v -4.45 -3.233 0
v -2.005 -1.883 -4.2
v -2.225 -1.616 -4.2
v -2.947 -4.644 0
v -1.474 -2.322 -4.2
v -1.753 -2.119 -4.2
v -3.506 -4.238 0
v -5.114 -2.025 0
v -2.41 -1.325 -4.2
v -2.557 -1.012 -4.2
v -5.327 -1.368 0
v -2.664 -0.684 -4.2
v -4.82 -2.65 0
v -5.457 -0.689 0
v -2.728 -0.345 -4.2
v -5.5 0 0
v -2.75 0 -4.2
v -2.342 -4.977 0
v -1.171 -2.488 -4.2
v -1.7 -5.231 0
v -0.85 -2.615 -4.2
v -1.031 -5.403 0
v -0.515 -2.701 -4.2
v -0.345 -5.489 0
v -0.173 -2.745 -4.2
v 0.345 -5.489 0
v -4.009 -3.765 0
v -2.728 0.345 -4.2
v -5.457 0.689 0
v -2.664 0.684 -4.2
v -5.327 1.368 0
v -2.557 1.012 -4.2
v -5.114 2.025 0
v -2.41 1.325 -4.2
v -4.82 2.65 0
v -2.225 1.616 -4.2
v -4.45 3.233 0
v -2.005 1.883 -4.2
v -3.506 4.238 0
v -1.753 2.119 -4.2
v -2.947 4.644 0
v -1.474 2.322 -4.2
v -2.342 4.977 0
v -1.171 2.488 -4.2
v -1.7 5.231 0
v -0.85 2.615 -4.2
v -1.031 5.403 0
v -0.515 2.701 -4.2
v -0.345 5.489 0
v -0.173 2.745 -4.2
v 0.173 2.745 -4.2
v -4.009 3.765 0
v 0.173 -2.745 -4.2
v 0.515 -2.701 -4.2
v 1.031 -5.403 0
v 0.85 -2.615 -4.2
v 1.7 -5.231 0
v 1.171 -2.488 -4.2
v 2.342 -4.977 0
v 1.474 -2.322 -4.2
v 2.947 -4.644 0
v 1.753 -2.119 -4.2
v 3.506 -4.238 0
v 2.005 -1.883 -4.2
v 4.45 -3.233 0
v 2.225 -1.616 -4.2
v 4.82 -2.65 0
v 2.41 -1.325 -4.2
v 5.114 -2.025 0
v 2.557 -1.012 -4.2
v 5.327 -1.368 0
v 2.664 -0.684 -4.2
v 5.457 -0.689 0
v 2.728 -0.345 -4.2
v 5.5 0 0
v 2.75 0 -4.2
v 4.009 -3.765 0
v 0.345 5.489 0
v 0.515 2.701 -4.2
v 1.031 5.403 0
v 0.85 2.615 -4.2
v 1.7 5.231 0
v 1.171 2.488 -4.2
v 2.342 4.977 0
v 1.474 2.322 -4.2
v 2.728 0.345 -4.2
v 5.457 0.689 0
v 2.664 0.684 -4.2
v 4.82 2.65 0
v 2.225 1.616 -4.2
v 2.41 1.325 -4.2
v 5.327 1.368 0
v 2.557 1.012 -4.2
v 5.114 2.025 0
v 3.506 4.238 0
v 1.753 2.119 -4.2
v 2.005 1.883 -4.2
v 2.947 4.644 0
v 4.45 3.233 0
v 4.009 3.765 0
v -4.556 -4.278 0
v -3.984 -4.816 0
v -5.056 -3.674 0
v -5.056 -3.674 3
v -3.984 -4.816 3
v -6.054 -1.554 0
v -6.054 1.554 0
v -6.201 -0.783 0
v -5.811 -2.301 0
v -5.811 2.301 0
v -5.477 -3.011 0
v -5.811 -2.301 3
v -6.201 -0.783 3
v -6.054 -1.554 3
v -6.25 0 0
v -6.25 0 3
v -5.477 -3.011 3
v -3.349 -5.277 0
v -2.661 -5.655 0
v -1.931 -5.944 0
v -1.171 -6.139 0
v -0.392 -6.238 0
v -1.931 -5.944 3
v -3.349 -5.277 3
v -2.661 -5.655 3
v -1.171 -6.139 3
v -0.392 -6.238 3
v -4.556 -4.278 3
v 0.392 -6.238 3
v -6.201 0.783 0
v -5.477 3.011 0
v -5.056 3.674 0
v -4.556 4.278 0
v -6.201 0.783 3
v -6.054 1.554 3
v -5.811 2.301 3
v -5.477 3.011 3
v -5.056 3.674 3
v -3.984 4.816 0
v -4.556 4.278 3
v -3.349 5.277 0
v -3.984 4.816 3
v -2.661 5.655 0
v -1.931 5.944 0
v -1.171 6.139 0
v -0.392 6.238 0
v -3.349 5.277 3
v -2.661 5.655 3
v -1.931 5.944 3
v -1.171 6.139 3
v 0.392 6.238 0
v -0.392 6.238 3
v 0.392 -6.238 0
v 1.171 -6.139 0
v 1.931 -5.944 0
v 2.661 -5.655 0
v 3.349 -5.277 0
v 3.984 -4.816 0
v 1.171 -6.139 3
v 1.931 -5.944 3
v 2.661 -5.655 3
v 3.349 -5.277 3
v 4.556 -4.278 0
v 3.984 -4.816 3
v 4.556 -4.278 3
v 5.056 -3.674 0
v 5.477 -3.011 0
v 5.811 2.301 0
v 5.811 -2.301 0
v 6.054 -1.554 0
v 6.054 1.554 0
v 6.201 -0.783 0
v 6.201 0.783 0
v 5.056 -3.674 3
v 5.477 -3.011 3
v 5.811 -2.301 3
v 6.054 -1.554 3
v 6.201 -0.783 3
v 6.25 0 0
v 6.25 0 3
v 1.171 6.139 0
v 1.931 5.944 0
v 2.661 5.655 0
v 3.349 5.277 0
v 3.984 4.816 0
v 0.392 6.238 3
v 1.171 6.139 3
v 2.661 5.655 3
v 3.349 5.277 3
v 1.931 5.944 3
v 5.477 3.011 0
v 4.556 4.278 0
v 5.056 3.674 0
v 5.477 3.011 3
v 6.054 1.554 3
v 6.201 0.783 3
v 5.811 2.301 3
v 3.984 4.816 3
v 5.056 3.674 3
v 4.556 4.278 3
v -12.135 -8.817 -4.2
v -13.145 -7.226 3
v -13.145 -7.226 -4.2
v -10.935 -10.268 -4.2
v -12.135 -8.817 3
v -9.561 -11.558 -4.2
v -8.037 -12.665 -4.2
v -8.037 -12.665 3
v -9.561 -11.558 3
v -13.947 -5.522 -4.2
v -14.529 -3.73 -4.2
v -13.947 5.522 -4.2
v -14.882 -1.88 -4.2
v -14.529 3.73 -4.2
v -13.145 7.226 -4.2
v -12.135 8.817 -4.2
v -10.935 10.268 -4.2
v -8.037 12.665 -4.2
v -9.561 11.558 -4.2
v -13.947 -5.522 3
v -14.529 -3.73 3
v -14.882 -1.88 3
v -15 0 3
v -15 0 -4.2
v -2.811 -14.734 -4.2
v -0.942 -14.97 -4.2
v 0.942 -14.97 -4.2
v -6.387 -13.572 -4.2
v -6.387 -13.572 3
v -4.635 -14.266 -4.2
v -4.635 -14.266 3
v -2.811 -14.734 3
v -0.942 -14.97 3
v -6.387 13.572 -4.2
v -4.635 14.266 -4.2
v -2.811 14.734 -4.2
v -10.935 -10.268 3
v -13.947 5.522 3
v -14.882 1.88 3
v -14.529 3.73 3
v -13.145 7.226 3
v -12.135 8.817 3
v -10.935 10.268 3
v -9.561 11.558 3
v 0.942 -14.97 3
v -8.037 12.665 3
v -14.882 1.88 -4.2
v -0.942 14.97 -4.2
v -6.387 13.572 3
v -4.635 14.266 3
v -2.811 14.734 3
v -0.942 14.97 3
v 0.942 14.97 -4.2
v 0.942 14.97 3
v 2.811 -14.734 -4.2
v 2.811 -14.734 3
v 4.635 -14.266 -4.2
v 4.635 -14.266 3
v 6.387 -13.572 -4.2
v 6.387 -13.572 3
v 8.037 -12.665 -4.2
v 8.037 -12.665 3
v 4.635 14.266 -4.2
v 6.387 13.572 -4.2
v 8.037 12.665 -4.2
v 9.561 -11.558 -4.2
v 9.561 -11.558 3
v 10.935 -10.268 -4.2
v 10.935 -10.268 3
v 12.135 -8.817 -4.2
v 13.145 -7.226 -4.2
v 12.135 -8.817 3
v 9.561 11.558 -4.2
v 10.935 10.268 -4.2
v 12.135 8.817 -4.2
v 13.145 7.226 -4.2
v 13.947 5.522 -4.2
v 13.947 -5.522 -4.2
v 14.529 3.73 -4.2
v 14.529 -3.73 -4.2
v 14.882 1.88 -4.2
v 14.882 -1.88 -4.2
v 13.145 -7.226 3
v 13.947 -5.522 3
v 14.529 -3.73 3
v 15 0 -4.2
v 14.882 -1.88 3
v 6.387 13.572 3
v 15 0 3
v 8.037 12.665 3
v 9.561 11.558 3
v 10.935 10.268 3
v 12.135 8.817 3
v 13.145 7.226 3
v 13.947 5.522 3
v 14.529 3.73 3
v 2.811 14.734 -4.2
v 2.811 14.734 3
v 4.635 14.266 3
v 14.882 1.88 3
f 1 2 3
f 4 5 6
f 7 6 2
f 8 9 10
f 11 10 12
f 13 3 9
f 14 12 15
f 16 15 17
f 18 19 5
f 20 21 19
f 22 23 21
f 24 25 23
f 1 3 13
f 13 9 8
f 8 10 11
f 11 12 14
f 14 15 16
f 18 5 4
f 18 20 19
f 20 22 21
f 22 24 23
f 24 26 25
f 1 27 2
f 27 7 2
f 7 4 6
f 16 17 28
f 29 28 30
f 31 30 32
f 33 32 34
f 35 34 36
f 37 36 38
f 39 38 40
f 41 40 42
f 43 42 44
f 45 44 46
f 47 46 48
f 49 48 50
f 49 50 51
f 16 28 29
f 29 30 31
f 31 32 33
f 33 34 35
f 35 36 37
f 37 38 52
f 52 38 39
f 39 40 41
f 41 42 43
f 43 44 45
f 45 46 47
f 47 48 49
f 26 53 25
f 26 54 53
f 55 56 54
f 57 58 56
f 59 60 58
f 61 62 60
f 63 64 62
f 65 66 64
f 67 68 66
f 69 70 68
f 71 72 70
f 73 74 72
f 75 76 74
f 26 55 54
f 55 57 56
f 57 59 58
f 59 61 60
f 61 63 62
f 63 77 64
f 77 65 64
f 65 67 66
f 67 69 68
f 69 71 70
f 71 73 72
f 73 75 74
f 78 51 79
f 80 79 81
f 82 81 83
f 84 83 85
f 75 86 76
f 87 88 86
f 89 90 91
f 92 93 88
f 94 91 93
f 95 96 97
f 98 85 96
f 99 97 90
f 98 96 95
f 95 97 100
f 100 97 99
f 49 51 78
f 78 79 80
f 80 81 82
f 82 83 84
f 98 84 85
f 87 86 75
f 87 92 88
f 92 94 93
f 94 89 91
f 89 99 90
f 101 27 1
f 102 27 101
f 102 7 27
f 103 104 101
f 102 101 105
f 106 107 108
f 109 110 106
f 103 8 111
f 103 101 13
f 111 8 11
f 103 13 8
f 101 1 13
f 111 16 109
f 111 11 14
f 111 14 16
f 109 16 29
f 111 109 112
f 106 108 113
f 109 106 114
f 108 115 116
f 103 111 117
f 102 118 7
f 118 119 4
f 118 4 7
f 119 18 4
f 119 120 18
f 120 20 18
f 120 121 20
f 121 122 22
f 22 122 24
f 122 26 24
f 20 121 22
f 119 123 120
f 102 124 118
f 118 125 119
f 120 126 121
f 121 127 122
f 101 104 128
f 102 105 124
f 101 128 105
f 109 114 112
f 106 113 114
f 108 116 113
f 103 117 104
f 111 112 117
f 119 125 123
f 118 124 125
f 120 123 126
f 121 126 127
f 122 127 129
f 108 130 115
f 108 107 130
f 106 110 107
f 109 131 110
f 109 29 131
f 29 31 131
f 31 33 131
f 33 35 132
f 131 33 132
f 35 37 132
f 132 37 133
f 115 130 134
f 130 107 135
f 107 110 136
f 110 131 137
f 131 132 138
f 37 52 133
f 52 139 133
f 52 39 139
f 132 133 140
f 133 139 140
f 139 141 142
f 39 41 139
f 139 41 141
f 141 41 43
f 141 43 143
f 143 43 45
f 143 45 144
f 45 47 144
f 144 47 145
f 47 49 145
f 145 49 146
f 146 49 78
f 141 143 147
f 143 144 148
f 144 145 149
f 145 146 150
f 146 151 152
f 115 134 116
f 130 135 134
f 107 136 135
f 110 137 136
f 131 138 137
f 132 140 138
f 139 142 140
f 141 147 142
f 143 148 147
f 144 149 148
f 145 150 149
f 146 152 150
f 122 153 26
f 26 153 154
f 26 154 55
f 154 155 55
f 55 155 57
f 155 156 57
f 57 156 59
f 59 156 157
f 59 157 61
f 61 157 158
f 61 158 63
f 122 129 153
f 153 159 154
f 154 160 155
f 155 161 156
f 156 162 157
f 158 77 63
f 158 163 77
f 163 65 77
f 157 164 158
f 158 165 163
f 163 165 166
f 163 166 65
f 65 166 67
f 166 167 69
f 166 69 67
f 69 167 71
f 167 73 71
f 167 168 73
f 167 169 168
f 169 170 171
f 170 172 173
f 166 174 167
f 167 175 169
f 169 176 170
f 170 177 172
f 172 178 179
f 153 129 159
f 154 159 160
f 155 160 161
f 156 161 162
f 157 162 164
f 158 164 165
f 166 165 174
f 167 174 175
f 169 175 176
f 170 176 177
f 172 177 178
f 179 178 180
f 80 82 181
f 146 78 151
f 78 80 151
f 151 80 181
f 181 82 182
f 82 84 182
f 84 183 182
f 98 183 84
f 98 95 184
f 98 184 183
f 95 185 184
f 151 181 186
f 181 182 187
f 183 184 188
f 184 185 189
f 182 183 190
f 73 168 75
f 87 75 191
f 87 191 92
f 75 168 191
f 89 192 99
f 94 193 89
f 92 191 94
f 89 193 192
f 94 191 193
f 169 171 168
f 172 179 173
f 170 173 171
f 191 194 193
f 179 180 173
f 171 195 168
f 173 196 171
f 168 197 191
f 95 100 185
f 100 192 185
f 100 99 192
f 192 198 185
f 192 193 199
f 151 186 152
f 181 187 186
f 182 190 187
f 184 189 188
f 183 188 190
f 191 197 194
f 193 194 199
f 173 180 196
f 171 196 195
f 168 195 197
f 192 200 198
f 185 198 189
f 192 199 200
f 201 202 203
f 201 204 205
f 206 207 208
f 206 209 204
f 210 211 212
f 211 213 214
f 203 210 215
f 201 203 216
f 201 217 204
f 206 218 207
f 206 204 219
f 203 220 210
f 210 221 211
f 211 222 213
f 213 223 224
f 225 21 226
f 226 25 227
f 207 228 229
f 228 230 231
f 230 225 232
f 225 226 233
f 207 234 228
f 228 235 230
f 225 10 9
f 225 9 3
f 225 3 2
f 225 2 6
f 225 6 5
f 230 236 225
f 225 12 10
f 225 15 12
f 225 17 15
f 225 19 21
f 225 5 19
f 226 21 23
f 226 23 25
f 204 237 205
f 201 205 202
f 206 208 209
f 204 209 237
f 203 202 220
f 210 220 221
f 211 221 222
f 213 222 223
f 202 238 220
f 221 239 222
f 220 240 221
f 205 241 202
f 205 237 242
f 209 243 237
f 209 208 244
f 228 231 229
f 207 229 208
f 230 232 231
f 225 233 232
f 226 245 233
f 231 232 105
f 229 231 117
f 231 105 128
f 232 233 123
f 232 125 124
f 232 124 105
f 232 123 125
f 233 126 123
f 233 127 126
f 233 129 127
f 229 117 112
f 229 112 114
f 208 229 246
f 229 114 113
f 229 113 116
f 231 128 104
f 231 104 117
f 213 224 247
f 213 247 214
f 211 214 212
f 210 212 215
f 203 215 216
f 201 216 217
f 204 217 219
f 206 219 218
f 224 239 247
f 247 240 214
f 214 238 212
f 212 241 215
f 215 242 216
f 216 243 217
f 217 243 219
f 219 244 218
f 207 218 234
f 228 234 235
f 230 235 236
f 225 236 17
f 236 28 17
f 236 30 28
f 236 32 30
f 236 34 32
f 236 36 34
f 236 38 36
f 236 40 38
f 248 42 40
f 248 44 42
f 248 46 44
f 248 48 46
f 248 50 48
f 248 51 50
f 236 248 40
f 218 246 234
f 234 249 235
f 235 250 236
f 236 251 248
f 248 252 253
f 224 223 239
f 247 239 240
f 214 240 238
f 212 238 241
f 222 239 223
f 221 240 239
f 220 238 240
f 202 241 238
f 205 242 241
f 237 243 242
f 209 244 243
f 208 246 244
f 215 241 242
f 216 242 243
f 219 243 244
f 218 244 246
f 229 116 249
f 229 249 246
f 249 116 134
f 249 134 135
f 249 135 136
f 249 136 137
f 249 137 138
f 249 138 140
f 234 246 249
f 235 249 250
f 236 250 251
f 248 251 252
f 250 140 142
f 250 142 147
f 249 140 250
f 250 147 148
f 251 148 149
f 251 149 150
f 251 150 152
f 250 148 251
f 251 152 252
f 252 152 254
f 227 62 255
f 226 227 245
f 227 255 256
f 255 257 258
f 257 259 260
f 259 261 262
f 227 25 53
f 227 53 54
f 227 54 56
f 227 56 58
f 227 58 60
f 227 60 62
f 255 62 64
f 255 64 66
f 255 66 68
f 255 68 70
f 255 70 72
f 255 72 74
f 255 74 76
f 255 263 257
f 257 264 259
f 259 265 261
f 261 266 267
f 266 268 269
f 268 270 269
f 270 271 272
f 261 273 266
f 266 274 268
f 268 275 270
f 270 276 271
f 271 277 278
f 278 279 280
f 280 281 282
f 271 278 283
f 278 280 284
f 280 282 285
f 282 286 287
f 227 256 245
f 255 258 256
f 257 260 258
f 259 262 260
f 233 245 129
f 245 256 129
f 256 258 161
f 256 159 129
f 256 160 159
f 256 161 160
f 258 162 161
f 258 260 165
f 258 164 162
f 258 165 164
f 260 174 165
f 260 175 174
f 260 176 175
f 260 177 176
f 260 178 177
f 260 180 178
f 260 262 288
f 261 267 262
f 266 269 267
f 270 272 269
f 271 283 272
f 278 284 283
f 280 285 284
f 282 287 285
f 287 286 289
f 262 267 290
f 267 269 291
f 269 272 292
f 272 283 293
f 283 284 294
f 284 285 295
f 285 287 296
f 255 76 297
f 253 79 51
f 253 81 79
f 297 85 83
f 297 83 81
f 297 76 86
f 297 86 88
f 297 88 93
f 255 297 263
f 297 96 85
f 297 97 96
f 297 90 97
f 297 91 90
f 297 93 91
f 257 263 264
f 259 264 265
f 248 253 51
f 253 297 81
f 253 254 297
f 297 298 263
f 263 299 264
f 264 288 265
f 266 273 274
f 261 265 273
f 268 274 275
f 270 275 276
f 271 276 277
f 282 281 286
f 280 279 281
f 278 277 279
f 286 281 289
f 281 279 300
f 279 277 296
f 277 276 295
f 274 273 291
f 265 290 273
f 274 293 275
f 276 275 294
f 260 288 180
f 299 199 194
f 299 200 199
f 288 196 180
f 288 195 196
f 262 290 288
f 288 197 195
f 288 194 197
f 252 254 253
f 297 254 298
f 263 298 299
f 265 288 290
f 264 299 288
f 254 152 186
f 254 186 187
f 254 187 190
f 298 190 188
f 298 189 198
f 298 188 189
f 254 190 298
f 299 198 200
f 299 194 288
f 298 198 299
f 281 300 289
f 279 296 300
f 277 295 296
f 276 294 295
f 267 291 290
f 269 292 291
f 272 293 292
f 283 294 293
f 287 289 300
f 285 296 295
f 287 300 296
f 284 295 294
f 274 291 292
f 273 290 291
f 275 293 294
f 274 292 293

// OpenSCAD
$fn = 50;


difference() {
	union() {
		translate(v = [0, 0, -4.2000000000]) {
			cylinder(h = 7.2000000000, r = 15.0000000000);
		}
	}
	union() {
		translate(v = [0, 0, 0]) {
			rotate(a = [0, 0, 0]) {
				difference() {
					union() {
						translate(v = [0, 0, -7.2000000000]) {
							cylinder(h = 7.2000000000, r = 2.2500000000);
						}
						translate(v = [0, 0, -4.2000000000]) {
							cylinder(h = 4.2000000000, r1 = 2.7500000000, r2 = 5.5000000000);
						}
						translate(v = [0, 0, -7.2000000000]) {
							cylinder(h = 7.2000000000, r = 2.7500000000);
						}
						translate(v = [0, 0, -7.2000000000]) {
							cylinder(h = 7.2000000000, r = 2.2500000000);
						}
					}
					union();
				}
			}
		}
		#cylinder(h = 3, r = 6.2500000000);
	}
}
